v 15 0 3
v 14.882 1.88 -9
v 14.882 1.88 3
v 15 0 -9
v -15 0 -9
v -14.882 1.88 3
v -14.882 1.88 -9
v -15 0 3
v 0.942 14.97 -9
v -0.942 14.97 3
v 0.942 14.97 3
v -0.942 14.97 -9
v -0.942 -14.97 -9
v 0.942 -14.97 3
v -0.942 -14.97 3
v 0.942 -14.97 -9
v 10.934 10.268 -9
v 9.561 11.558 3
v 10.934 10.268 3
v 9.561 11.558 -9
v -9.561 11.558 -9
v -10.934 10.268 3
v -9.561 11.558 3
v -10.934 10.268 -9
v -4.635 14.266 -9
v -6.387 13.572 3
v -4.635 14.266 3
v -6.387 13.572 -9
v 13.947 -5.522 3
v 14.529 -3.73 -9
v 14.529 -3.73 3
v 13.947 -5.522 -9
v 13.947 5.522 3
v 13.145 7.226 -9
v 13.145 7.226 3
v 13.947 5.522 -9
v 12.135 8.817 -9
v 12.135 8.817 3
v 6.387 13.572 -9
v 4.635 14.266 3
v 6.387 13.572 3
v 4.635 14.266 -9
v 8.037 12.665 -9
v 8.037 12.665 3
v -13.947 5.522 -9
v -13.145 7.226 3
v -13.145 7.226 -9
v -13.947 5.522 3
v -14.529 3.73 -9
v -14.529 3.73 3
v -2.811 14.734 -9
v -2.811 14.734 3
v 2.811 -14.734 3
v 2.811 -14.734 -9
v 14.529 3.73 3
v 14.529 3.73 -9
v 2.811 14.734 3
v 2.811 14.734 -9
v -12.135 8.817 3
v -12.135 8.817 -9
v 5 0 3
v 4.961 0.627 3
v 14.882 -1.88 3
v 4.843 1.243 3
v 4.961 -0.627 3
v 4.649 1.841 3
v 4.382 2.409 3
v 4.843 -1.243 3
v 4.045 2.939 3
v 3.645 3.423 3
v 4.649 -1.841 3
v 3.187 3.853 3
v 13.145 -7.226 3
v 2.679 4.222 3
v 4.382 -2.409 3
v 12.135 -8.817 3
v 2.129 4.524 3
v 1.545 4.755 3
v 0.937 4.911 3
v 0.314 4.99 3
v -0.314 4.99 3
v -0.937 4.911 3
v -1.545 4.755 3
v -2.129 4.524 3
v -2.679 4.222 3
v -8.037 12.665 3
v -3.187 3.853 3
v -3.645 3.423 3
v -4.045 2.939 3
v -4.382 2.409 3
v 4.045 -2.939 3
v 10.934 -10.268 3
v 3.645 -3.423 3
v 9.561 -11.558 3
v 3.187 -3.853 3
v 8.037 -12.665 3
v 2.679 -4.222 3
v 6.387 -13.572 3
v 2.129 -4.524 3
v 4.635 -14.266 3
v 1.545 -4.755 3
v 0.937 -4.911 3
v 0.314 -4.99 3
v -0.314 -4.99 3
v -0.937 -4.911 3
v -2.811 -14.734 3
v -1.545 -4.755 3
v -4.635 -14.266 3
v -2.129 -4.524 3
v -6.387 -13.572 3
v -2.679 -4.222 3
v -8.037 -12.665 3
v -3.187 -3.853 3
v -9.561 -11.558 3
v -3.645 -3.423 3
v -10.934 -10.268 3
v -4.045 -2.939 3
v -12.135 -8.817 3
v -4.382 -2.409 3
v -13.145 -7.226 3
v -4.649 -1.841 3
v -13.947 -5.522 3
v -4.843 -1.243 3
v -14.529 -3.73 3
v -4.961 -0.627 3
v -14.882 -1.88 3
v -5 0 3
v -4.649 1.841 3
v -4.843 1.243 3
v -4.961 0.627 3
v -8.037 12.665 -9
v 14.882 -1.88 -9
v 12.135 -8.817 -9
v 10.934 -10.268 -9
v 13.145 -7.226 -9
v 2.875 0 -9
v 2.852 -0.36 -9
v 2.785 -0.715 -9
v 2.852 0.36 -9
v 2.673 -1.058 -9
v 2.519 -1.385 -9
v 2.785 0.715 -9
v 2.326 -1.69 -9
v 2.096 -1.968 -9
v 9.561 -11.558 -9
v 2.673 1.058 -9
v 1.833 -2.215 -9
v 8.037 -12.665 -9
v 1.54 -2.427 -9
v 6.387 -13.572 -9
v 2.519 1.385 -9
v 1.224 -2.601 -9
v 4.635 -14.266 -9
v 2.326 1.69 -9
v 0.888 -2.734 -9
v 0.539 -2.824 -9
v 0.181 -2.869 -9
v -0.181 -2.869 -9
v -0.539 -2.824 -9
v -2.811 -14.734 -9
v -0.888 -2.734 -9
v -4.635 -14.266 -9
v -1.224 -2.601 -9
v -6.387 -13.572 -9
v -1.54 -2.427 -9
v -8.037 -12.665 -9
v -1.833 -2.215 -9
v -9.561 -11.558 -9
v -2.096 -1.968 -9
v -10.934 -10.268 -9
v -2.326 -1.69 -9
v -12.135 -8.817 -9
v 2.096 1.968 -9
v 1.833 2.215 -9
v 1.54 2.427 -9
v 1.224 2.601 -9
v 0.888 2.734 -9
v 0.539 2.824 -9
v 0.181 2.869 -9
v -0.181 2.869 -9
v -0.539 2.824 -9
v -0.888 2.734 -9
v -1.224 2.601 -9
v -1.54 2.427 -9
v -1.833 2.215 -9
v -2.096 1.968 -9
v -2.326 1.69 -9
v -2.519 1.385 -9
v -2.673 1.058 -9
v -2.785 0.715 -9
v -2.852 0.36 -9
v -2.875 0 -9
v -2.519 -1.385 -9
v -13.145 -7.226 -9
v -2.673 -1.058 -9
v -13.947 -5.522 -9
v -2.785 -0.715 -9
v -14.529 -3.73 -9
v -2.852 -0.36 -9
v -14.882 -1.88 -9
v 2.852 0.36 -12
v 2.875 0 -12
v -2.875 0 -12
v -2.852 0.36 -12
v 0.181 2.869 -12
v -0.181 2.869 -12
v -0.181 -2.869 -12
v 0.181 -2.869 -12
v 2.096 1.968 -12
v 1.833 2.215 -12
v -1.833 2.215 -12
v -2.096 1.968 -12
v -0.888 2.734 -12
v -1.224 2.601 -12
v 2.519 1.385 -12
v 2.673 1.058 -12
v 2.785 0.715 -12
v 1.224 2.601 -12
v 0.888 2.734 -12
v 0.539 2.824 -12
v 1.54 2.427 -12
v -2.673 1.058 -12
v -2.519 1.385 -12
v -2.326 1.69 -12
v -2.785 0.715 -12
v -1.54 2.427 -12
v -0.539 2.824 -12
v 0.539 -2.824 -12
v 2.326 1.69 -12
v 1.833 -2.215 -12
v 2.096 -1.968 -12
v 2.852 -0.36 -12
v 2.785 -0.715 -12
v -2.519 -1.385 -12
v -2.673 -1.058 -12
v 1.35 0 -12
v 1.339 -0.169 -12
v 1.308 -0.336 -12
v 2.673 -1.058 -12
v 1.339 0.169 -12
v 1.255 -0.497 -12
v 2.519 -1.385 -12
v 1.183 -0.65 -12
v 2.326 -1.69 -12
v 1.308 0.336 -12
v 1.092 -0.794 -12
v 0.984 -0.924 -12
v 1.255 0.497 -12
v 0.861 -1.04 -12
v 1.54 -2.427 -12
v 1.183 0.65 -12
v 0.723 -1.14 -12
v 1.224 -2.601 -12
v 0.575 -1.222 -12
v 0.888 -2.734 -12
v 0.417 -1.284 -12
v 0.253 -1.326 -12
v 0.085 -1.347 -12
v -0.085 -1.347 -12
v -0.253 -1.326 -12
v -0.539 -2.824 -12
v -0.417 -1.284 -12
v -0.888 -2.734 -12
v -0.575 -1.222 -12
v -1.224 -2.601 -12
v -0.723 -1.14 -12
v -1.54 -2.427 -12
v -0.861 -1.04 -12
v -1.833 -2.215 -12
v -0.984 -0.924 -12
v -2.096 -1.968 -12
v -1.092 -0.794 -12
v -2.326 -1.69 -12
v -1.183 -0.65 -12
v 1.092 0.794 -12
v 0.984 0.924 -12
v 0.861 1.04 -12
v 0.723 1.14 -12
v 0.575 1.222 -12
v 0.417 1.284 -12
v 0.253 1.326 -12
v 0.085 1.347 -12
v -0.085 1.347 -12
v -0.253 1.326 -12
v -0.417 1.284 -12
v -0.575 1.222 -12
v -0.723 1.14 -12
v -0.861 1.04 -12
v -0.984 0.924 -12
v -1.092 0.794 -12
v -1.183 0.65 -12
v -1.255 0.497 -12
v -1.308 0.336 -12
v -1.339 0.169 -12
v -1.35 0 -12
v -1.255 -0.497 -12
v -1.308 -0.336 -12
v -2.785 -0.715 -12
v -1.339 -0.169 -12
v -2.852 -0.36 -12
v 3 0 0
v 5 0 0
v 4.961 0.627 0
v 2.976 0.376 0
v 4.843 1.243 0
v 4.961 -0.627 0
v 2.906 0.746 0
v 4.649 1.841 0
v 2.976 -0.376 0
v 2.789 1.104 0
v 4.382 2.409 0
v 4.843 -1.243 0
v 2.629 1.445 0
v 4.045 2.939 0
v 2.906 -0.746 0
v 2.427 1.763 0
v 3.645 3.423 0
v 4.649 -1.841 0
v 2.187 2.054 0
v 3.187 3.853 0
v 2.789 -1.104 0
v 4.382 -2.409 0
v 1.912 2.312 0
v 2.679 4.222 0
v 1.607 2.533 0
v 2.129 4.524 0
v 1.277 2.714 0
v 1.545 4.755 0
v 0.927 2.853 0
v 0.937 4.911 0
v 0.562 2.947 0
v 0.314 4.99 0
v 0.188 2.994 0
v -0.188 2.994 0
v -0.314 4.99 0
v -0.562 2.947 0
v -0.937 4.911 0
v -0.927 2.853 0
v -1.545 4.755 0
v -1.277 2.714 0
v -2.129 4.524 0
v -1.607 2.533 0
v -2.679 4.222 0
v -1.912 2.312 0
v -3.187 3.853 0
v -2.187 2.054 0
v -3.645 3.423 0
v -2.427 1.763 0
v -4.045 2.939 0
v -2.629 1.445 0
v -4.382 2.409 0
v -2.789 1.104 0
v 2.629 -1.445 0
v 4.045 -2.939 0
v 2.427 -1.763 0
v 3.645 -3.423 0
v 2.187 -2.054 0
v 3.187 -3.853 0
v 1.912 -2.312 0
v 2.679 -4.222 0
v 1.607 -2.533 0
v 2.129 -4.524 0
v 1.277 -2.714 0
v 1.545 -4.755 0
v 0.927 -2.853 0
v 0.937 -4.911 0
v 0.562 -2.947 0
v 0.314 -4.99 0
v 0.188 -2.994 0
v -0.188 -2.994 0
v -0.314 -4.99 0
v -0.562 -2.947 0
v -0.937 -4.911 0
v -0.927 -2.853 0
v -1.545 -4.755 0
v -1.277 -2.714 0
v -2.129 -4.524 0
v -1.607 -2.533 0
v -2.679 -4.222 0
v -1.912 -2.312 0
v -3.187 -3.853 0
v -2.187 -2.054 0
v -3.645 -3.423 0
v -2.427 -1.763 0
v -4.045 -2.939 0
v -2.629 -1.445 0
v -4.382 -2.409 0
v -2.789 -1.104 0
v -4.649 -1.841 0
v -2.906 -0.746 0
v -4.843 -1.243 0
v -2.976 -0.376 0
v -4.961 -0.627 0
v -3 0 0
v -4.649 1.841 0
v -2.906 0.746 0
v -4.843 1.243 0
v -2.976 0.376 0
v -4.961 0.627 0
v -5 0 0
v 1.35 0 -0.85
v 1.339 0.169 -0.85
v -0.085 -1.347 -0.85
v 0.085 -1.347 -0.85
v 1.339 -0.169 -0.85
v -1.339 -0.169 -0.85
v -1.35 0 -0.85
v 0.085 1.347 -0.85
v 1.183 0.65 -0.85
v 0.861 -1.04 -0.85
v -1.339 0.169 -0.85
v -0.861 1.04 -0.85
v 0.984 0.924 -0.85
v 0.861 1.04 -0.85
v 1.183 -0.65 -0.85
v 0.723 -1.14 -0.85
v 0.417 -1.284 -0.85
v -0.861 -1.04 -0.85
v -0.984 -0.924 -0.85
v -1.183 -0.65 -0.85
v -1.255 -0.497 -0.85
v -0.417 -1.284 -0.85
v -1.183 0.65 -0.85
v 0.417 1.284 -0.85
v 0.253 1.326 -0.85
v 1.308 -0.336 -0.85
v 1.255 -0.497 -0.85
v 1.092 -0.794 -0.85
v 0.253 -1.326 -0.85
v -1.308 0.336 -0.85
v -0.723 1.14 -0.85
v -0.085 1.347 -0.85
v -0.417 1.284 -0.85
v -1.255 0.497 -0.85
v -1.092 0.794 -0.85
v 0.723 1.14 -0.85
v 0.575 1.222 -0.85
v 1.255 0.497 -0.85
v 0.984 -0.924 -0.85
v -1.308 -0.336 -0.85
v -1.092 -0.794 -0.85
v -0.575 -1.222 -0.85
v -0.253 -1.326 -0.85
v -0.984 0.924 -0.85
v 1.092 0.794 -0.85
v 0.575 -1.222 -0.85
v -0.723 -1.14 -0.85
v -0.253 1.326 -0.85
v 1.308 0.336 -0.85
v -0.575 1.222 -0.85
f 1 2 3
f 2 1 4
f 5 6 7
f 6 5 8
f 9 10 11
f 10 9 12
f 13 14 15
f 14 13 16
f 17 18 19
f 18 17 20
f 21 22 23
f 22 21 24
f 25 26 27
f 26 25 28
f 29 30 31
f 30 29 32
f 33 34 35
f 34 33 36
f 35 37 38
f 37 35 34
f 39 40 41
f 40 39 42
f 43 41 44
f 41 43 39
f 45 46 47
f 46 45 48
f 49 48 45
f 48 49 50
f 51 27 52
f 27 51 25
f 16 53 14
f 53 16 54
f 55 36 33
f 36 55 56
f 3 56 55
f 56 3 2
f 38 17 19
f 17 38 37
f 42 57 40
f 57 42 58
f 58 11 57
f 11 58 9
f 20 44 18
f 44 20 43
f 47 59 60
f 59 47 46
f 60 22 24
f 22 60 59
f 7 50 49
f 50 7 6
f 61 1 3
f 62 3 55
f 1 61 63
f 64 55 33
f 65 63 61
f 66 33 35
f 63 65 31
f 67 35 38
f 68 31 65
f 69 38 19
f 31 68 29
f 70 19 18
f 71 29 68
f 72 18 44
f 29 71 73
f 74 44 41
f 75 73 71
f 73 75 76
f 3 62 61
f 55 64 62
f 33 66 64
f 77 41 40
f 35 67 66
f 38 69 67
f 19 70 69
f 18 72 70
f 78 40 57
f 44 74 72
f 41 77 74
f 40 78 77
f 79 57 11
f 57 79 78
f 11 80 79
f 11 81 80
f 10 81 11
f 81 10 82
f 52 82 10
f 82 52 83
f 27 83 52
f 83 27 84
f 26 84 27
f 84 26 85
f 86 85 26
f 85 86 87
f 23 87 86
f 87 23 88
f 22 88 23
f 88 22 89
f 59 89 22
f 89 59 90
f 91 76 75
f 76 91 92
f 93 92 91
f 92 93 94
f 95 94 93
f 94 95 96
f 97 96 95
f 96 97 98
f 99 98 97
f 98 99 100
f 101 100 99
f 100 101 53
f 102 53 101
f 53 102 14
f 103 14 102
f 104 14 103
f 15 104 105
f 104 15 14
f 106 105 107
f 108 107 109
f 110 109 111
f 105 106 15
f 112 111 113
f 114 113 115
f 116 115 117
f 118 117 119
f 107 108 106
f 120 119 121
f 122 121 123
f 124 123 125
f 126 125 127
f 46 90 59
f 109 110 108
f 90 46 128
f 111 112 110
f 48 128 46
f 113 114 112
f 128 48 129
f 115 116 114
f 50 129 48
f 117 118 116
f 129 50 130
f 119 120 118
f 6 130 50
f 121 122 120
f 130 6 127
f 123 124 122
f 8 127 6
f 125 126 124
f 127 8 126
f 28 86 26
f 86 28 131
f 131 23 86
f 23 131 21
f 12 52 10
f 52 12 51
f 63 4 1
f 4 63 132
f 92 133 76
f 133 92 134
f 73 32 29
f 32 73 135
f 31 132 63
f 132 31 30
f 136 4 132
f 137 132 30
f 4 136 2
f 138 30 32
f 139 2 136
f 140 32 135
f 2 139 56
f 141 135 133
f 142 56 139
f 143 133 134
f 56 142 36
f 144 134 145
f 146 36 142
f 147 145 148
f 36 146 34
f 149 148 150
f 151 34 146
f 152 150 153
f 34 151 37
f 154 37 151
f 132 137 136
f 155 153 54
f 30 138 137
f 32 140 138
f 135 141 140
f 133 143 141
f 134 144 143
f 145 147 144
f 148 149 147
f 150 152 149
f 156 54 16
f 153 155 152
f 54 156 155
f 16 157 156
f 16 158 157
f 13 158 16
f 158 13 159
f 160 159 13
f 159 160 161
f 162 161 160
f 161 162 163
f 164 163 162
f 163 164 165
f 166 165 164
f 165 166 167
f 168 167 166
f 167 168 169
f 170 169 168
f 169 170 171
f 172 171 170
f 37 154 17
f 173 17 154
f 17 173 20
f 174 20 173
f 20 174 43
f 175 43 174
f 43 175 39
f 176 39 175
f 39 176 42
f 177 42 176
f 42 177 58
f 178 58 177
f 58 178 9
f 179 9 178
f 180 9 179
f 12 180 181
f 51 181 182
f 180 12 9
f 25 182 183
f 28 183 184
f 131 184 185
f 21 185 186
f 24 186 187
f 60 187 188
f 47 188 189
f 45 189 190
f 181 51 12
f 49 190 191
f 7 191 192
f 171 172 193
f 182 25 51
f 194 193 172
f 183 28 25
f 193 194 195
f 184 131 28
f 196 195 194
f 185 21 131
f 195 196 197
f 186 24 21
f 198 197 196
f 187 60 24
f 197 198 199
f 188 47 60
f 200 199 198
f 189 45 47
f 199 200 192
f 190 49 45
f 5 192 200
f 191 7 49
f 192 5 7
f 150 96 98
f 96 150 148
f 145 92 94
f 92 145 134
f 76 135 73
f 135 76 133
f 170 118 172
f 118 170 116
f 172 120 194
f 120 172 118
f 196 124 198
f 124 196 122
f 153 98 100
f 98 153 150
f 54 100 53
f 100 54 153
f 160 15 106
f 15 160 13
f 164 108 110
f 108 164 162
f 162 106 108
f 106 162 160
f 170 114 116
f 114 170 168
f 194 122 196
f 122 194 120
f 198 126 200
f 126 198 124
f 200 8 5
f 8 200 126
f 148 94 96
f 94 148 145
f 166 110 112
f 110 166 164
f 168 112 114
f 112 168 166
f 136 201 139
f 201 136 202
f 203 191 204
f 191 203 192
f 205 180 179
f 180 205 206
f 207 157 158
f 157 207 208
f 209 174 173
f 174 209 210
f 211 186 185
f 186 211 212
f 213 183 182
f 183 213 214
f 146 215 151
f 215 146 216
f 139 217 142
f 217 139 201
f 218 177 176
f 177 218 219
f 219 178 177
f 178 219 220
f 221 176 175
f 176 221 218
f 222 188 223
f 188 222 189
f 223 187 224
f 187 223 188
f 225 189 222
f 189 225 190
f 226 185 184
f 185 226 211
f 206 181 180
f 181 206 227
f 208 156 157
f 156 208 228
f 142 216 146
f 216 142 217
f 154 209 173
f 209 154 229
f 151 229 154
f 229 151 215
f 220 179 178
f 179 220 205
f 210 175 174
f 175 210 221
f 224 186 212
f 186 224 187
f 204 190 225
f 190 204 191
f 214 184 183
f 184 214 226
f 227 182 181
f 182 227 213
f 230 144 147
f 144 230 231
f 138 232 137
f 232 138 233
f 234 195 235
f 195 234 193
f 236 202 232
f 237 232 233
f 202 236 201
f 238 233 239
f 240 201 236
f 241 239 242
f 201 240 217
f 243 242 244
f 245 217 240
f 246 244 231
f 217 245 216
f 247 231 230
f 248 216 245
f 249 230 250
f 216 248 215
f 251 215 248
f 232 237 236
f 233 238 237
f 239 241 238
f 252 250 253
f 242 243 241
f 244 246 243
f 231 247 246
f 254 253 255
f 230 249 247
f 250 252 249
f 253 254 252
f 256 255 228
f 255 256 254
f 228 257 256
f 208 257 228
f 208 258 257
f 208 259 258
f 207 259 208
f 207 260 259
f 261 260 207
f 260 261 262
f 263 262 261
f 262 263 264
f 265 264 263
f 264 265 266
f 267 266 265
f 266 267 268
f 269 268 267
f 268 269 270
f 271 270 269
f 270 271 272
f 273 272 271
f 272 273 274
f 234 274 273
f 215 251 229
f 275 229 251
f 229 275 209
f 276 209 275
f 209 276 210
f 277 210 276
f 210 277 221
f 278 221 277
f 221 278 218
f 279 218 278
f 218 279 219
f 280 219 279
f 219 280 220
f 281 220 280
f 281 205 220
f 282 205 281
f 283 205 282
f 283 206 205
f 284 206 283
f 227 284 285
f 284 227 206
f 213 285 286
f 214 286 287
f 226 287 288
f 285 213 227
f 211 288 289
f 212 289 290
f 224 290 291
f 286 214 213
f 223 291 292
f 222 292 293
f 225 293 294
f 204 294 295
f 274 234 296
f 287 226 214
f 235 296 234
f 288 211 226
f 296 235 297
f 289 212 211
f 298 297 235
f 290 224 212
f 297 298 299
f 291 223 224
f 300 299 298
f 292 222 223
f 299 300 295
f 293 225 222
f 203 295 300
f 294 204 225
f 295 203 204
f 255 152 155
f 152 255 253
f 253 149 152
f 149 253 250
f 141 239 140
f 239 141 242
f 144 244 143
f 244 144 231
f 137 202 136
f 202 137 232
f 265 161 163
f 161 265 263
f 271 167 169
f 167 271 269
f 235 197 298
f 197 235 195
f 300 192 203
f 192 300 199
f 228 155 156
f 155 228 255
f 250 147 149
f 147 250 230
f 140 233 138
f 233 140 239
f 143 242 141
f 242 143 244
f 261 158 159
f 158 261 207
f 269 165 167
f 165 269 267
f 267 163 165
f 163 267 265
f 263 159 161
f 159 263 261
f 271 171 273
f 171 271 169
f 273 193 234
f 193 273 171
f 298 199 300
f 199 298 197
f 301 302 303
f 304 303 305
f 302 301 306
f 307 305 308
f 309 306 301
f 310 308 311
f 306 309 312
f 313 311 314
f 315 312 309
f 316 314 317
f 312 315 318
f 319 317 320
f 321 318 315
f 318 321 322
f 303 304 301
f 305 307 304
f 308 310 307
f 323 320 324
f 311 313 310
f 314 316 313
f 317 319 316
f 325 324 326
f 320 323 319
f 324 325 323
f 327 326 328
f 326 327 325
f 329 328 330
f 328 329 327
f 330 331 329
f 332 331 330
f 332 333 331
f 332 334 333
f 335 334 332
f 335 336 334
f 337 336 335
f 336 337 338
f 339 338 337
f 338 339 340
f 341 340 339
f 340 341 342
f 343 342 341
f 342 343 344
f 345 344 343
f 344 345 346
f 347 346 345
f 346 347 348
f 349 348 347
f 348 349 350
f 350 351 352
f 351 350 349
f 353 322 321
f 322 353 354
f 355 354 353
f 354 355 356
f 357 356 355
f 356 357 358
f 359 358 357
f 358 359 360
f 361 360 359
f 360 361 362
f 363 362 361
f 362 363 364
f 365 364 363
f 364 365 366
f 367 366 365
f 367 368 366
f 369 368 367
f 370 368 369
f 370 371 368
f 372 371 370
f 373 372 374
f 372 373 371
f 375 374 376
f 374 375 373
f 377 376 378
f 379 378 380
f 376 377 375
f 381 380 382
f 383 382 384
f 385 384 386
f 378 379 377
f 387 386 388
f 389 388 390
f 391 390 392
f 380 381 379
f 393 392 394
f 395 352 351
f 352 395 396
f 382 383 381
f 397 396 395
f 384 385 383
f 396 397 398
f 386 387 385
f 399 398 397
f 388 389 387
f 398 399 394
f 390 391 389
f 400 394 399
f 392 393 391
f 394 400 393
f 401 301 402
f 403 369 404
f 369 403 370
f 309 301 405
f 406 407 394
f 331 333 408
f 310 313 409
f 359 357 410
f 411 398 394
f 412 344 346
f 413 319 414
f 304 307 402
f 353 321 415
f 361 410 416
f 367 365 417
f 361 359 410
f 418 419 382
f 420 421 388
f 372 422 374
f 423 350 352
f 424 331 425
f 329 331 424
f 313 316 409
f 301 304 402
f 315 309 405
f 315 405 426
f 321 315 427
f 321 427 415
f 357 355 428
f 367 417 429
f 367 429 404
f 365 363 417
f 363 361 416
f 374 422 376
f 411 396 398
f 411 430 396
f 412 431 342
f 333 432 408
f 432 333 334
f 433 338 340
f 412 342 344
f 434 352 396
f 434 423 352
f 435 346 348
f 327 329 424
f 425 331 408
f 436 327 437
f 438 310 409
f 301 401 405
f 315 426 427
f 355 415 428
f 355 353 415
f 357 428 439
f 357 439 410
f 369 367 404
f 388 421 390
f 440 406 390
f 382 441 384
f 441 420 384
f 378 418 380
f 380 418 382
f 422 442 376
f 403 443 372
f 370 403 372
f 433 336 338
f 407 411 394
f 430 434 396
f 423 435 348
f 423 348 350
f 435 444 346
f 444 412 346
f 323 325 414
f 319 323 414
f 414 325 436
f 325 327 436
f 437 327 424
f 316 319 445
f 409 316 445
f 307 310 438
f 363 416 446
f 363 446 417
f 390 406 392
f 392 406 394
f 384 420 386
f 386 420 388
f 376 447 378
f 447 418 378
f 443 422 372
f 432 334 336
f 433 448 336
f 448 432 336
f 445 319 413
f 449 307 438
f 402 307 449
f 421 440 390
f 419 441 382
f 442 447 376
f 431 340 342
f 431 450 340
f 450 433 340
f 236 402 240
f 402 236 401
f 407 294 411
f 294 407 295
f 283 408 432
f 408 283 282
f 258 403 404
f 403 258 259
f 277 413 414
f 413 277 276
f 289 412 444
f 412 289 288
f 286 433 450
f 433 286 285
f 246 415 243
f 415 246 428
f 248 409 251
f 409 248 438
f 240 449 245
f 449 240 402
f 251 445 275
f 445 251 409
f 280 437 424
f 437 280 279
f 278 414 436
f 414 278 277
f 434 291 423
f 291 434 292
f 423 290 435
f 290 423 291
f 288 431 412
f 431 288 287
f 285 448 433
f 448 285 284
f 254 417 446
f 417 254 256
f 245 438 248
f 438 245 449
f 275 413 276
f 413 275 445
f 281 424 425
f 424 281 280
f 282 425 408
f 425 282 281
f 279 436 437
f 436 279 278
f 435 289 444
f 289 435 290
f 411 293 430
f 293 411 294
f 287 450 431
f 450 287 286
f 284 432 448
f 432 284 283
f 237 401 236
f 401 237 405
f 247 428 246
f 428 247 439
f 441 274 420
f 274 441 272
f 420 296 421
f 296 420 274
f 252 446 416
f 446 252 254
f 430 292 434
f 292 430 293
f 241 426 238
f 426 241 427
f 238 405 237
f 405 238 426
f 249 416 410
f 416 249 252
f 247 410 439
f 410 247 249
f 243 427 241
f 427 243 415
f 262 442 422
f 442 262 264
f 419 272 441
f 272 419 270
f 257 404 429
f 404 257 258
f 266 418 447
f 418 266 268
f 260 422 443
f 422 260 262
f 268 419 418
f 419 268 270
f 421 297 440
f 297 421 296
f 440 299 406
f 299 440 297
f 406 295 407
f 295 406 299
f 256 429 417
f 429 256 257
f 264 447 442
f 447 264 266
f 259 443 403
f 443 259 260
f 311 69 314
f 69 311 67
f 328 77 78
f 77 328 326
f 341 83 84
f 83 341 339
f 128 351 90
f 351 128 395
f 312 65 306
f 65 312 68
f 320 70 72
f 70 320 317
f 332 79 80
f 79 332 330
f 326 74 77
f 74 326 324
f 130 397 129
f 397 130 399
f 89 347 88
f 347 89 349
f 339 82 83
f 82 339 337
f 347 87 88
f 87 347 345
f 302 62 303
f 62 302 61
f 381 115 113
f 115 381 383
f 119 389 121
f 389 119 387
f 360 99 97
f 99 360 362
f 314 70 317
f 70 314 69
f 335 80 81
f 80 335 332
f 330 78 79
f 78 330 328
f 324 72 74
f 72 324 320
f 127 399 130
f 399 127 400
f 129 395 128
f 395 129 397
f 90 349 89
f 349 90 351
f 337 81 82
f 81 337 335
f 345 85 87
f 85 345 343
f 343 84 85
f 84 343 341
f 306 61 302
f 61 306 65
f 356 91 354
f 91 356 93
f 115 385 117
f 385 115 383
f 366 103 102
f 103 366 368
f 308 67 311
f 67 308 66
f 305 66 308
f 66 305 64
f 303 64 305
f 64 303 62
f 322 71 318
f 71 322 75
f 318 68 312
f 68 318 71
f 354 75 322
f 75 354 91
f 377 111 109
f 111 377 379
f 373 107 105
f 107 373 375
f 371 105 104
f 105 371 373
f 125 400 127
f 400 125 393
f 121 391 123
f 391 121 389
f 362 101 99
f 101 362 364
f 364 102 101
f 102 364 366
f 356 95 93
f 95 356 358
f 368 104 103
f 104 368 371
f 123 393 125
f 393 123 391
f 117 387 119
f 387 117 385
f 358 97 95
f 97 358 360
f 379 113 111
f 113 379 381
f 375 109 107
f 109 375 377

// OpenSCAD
$fn = 50;

difference() {
	union() {
		translate(v = [0, 0, -9.0]) {
			cylinder(h = 12, r = 15.0);
		}
		#translate(v = [0, 0, -12.0]) {
			cylinder(h = 12, r = 2.875);
		}
	}
	union() {
		translate(v = [0, 0, 0]) {
			rotate(a = [0, 0, 0]) {
				difference() {
					union() {
						translate(v = [0, 0, -12.0]) {
							cylinder(h = 12, r = 1.0);
						}
						translate(v = [0, 0, -0.85]) {
							cylinder(h = 0.85, r1 = 1.35, r2 = 3.0);
						}
						translate(v = [0, 0, -12.0]) {
							cylinder(h = 12, r = 1.35);
						}
						translate(v = [0, 0, -12.0]) {
							cylinder(h = 12, r = 1.0);
						}
					}
					union();
				}
			}
		}
		#cylinder(h = 3, r = 5.0);
	}
}
